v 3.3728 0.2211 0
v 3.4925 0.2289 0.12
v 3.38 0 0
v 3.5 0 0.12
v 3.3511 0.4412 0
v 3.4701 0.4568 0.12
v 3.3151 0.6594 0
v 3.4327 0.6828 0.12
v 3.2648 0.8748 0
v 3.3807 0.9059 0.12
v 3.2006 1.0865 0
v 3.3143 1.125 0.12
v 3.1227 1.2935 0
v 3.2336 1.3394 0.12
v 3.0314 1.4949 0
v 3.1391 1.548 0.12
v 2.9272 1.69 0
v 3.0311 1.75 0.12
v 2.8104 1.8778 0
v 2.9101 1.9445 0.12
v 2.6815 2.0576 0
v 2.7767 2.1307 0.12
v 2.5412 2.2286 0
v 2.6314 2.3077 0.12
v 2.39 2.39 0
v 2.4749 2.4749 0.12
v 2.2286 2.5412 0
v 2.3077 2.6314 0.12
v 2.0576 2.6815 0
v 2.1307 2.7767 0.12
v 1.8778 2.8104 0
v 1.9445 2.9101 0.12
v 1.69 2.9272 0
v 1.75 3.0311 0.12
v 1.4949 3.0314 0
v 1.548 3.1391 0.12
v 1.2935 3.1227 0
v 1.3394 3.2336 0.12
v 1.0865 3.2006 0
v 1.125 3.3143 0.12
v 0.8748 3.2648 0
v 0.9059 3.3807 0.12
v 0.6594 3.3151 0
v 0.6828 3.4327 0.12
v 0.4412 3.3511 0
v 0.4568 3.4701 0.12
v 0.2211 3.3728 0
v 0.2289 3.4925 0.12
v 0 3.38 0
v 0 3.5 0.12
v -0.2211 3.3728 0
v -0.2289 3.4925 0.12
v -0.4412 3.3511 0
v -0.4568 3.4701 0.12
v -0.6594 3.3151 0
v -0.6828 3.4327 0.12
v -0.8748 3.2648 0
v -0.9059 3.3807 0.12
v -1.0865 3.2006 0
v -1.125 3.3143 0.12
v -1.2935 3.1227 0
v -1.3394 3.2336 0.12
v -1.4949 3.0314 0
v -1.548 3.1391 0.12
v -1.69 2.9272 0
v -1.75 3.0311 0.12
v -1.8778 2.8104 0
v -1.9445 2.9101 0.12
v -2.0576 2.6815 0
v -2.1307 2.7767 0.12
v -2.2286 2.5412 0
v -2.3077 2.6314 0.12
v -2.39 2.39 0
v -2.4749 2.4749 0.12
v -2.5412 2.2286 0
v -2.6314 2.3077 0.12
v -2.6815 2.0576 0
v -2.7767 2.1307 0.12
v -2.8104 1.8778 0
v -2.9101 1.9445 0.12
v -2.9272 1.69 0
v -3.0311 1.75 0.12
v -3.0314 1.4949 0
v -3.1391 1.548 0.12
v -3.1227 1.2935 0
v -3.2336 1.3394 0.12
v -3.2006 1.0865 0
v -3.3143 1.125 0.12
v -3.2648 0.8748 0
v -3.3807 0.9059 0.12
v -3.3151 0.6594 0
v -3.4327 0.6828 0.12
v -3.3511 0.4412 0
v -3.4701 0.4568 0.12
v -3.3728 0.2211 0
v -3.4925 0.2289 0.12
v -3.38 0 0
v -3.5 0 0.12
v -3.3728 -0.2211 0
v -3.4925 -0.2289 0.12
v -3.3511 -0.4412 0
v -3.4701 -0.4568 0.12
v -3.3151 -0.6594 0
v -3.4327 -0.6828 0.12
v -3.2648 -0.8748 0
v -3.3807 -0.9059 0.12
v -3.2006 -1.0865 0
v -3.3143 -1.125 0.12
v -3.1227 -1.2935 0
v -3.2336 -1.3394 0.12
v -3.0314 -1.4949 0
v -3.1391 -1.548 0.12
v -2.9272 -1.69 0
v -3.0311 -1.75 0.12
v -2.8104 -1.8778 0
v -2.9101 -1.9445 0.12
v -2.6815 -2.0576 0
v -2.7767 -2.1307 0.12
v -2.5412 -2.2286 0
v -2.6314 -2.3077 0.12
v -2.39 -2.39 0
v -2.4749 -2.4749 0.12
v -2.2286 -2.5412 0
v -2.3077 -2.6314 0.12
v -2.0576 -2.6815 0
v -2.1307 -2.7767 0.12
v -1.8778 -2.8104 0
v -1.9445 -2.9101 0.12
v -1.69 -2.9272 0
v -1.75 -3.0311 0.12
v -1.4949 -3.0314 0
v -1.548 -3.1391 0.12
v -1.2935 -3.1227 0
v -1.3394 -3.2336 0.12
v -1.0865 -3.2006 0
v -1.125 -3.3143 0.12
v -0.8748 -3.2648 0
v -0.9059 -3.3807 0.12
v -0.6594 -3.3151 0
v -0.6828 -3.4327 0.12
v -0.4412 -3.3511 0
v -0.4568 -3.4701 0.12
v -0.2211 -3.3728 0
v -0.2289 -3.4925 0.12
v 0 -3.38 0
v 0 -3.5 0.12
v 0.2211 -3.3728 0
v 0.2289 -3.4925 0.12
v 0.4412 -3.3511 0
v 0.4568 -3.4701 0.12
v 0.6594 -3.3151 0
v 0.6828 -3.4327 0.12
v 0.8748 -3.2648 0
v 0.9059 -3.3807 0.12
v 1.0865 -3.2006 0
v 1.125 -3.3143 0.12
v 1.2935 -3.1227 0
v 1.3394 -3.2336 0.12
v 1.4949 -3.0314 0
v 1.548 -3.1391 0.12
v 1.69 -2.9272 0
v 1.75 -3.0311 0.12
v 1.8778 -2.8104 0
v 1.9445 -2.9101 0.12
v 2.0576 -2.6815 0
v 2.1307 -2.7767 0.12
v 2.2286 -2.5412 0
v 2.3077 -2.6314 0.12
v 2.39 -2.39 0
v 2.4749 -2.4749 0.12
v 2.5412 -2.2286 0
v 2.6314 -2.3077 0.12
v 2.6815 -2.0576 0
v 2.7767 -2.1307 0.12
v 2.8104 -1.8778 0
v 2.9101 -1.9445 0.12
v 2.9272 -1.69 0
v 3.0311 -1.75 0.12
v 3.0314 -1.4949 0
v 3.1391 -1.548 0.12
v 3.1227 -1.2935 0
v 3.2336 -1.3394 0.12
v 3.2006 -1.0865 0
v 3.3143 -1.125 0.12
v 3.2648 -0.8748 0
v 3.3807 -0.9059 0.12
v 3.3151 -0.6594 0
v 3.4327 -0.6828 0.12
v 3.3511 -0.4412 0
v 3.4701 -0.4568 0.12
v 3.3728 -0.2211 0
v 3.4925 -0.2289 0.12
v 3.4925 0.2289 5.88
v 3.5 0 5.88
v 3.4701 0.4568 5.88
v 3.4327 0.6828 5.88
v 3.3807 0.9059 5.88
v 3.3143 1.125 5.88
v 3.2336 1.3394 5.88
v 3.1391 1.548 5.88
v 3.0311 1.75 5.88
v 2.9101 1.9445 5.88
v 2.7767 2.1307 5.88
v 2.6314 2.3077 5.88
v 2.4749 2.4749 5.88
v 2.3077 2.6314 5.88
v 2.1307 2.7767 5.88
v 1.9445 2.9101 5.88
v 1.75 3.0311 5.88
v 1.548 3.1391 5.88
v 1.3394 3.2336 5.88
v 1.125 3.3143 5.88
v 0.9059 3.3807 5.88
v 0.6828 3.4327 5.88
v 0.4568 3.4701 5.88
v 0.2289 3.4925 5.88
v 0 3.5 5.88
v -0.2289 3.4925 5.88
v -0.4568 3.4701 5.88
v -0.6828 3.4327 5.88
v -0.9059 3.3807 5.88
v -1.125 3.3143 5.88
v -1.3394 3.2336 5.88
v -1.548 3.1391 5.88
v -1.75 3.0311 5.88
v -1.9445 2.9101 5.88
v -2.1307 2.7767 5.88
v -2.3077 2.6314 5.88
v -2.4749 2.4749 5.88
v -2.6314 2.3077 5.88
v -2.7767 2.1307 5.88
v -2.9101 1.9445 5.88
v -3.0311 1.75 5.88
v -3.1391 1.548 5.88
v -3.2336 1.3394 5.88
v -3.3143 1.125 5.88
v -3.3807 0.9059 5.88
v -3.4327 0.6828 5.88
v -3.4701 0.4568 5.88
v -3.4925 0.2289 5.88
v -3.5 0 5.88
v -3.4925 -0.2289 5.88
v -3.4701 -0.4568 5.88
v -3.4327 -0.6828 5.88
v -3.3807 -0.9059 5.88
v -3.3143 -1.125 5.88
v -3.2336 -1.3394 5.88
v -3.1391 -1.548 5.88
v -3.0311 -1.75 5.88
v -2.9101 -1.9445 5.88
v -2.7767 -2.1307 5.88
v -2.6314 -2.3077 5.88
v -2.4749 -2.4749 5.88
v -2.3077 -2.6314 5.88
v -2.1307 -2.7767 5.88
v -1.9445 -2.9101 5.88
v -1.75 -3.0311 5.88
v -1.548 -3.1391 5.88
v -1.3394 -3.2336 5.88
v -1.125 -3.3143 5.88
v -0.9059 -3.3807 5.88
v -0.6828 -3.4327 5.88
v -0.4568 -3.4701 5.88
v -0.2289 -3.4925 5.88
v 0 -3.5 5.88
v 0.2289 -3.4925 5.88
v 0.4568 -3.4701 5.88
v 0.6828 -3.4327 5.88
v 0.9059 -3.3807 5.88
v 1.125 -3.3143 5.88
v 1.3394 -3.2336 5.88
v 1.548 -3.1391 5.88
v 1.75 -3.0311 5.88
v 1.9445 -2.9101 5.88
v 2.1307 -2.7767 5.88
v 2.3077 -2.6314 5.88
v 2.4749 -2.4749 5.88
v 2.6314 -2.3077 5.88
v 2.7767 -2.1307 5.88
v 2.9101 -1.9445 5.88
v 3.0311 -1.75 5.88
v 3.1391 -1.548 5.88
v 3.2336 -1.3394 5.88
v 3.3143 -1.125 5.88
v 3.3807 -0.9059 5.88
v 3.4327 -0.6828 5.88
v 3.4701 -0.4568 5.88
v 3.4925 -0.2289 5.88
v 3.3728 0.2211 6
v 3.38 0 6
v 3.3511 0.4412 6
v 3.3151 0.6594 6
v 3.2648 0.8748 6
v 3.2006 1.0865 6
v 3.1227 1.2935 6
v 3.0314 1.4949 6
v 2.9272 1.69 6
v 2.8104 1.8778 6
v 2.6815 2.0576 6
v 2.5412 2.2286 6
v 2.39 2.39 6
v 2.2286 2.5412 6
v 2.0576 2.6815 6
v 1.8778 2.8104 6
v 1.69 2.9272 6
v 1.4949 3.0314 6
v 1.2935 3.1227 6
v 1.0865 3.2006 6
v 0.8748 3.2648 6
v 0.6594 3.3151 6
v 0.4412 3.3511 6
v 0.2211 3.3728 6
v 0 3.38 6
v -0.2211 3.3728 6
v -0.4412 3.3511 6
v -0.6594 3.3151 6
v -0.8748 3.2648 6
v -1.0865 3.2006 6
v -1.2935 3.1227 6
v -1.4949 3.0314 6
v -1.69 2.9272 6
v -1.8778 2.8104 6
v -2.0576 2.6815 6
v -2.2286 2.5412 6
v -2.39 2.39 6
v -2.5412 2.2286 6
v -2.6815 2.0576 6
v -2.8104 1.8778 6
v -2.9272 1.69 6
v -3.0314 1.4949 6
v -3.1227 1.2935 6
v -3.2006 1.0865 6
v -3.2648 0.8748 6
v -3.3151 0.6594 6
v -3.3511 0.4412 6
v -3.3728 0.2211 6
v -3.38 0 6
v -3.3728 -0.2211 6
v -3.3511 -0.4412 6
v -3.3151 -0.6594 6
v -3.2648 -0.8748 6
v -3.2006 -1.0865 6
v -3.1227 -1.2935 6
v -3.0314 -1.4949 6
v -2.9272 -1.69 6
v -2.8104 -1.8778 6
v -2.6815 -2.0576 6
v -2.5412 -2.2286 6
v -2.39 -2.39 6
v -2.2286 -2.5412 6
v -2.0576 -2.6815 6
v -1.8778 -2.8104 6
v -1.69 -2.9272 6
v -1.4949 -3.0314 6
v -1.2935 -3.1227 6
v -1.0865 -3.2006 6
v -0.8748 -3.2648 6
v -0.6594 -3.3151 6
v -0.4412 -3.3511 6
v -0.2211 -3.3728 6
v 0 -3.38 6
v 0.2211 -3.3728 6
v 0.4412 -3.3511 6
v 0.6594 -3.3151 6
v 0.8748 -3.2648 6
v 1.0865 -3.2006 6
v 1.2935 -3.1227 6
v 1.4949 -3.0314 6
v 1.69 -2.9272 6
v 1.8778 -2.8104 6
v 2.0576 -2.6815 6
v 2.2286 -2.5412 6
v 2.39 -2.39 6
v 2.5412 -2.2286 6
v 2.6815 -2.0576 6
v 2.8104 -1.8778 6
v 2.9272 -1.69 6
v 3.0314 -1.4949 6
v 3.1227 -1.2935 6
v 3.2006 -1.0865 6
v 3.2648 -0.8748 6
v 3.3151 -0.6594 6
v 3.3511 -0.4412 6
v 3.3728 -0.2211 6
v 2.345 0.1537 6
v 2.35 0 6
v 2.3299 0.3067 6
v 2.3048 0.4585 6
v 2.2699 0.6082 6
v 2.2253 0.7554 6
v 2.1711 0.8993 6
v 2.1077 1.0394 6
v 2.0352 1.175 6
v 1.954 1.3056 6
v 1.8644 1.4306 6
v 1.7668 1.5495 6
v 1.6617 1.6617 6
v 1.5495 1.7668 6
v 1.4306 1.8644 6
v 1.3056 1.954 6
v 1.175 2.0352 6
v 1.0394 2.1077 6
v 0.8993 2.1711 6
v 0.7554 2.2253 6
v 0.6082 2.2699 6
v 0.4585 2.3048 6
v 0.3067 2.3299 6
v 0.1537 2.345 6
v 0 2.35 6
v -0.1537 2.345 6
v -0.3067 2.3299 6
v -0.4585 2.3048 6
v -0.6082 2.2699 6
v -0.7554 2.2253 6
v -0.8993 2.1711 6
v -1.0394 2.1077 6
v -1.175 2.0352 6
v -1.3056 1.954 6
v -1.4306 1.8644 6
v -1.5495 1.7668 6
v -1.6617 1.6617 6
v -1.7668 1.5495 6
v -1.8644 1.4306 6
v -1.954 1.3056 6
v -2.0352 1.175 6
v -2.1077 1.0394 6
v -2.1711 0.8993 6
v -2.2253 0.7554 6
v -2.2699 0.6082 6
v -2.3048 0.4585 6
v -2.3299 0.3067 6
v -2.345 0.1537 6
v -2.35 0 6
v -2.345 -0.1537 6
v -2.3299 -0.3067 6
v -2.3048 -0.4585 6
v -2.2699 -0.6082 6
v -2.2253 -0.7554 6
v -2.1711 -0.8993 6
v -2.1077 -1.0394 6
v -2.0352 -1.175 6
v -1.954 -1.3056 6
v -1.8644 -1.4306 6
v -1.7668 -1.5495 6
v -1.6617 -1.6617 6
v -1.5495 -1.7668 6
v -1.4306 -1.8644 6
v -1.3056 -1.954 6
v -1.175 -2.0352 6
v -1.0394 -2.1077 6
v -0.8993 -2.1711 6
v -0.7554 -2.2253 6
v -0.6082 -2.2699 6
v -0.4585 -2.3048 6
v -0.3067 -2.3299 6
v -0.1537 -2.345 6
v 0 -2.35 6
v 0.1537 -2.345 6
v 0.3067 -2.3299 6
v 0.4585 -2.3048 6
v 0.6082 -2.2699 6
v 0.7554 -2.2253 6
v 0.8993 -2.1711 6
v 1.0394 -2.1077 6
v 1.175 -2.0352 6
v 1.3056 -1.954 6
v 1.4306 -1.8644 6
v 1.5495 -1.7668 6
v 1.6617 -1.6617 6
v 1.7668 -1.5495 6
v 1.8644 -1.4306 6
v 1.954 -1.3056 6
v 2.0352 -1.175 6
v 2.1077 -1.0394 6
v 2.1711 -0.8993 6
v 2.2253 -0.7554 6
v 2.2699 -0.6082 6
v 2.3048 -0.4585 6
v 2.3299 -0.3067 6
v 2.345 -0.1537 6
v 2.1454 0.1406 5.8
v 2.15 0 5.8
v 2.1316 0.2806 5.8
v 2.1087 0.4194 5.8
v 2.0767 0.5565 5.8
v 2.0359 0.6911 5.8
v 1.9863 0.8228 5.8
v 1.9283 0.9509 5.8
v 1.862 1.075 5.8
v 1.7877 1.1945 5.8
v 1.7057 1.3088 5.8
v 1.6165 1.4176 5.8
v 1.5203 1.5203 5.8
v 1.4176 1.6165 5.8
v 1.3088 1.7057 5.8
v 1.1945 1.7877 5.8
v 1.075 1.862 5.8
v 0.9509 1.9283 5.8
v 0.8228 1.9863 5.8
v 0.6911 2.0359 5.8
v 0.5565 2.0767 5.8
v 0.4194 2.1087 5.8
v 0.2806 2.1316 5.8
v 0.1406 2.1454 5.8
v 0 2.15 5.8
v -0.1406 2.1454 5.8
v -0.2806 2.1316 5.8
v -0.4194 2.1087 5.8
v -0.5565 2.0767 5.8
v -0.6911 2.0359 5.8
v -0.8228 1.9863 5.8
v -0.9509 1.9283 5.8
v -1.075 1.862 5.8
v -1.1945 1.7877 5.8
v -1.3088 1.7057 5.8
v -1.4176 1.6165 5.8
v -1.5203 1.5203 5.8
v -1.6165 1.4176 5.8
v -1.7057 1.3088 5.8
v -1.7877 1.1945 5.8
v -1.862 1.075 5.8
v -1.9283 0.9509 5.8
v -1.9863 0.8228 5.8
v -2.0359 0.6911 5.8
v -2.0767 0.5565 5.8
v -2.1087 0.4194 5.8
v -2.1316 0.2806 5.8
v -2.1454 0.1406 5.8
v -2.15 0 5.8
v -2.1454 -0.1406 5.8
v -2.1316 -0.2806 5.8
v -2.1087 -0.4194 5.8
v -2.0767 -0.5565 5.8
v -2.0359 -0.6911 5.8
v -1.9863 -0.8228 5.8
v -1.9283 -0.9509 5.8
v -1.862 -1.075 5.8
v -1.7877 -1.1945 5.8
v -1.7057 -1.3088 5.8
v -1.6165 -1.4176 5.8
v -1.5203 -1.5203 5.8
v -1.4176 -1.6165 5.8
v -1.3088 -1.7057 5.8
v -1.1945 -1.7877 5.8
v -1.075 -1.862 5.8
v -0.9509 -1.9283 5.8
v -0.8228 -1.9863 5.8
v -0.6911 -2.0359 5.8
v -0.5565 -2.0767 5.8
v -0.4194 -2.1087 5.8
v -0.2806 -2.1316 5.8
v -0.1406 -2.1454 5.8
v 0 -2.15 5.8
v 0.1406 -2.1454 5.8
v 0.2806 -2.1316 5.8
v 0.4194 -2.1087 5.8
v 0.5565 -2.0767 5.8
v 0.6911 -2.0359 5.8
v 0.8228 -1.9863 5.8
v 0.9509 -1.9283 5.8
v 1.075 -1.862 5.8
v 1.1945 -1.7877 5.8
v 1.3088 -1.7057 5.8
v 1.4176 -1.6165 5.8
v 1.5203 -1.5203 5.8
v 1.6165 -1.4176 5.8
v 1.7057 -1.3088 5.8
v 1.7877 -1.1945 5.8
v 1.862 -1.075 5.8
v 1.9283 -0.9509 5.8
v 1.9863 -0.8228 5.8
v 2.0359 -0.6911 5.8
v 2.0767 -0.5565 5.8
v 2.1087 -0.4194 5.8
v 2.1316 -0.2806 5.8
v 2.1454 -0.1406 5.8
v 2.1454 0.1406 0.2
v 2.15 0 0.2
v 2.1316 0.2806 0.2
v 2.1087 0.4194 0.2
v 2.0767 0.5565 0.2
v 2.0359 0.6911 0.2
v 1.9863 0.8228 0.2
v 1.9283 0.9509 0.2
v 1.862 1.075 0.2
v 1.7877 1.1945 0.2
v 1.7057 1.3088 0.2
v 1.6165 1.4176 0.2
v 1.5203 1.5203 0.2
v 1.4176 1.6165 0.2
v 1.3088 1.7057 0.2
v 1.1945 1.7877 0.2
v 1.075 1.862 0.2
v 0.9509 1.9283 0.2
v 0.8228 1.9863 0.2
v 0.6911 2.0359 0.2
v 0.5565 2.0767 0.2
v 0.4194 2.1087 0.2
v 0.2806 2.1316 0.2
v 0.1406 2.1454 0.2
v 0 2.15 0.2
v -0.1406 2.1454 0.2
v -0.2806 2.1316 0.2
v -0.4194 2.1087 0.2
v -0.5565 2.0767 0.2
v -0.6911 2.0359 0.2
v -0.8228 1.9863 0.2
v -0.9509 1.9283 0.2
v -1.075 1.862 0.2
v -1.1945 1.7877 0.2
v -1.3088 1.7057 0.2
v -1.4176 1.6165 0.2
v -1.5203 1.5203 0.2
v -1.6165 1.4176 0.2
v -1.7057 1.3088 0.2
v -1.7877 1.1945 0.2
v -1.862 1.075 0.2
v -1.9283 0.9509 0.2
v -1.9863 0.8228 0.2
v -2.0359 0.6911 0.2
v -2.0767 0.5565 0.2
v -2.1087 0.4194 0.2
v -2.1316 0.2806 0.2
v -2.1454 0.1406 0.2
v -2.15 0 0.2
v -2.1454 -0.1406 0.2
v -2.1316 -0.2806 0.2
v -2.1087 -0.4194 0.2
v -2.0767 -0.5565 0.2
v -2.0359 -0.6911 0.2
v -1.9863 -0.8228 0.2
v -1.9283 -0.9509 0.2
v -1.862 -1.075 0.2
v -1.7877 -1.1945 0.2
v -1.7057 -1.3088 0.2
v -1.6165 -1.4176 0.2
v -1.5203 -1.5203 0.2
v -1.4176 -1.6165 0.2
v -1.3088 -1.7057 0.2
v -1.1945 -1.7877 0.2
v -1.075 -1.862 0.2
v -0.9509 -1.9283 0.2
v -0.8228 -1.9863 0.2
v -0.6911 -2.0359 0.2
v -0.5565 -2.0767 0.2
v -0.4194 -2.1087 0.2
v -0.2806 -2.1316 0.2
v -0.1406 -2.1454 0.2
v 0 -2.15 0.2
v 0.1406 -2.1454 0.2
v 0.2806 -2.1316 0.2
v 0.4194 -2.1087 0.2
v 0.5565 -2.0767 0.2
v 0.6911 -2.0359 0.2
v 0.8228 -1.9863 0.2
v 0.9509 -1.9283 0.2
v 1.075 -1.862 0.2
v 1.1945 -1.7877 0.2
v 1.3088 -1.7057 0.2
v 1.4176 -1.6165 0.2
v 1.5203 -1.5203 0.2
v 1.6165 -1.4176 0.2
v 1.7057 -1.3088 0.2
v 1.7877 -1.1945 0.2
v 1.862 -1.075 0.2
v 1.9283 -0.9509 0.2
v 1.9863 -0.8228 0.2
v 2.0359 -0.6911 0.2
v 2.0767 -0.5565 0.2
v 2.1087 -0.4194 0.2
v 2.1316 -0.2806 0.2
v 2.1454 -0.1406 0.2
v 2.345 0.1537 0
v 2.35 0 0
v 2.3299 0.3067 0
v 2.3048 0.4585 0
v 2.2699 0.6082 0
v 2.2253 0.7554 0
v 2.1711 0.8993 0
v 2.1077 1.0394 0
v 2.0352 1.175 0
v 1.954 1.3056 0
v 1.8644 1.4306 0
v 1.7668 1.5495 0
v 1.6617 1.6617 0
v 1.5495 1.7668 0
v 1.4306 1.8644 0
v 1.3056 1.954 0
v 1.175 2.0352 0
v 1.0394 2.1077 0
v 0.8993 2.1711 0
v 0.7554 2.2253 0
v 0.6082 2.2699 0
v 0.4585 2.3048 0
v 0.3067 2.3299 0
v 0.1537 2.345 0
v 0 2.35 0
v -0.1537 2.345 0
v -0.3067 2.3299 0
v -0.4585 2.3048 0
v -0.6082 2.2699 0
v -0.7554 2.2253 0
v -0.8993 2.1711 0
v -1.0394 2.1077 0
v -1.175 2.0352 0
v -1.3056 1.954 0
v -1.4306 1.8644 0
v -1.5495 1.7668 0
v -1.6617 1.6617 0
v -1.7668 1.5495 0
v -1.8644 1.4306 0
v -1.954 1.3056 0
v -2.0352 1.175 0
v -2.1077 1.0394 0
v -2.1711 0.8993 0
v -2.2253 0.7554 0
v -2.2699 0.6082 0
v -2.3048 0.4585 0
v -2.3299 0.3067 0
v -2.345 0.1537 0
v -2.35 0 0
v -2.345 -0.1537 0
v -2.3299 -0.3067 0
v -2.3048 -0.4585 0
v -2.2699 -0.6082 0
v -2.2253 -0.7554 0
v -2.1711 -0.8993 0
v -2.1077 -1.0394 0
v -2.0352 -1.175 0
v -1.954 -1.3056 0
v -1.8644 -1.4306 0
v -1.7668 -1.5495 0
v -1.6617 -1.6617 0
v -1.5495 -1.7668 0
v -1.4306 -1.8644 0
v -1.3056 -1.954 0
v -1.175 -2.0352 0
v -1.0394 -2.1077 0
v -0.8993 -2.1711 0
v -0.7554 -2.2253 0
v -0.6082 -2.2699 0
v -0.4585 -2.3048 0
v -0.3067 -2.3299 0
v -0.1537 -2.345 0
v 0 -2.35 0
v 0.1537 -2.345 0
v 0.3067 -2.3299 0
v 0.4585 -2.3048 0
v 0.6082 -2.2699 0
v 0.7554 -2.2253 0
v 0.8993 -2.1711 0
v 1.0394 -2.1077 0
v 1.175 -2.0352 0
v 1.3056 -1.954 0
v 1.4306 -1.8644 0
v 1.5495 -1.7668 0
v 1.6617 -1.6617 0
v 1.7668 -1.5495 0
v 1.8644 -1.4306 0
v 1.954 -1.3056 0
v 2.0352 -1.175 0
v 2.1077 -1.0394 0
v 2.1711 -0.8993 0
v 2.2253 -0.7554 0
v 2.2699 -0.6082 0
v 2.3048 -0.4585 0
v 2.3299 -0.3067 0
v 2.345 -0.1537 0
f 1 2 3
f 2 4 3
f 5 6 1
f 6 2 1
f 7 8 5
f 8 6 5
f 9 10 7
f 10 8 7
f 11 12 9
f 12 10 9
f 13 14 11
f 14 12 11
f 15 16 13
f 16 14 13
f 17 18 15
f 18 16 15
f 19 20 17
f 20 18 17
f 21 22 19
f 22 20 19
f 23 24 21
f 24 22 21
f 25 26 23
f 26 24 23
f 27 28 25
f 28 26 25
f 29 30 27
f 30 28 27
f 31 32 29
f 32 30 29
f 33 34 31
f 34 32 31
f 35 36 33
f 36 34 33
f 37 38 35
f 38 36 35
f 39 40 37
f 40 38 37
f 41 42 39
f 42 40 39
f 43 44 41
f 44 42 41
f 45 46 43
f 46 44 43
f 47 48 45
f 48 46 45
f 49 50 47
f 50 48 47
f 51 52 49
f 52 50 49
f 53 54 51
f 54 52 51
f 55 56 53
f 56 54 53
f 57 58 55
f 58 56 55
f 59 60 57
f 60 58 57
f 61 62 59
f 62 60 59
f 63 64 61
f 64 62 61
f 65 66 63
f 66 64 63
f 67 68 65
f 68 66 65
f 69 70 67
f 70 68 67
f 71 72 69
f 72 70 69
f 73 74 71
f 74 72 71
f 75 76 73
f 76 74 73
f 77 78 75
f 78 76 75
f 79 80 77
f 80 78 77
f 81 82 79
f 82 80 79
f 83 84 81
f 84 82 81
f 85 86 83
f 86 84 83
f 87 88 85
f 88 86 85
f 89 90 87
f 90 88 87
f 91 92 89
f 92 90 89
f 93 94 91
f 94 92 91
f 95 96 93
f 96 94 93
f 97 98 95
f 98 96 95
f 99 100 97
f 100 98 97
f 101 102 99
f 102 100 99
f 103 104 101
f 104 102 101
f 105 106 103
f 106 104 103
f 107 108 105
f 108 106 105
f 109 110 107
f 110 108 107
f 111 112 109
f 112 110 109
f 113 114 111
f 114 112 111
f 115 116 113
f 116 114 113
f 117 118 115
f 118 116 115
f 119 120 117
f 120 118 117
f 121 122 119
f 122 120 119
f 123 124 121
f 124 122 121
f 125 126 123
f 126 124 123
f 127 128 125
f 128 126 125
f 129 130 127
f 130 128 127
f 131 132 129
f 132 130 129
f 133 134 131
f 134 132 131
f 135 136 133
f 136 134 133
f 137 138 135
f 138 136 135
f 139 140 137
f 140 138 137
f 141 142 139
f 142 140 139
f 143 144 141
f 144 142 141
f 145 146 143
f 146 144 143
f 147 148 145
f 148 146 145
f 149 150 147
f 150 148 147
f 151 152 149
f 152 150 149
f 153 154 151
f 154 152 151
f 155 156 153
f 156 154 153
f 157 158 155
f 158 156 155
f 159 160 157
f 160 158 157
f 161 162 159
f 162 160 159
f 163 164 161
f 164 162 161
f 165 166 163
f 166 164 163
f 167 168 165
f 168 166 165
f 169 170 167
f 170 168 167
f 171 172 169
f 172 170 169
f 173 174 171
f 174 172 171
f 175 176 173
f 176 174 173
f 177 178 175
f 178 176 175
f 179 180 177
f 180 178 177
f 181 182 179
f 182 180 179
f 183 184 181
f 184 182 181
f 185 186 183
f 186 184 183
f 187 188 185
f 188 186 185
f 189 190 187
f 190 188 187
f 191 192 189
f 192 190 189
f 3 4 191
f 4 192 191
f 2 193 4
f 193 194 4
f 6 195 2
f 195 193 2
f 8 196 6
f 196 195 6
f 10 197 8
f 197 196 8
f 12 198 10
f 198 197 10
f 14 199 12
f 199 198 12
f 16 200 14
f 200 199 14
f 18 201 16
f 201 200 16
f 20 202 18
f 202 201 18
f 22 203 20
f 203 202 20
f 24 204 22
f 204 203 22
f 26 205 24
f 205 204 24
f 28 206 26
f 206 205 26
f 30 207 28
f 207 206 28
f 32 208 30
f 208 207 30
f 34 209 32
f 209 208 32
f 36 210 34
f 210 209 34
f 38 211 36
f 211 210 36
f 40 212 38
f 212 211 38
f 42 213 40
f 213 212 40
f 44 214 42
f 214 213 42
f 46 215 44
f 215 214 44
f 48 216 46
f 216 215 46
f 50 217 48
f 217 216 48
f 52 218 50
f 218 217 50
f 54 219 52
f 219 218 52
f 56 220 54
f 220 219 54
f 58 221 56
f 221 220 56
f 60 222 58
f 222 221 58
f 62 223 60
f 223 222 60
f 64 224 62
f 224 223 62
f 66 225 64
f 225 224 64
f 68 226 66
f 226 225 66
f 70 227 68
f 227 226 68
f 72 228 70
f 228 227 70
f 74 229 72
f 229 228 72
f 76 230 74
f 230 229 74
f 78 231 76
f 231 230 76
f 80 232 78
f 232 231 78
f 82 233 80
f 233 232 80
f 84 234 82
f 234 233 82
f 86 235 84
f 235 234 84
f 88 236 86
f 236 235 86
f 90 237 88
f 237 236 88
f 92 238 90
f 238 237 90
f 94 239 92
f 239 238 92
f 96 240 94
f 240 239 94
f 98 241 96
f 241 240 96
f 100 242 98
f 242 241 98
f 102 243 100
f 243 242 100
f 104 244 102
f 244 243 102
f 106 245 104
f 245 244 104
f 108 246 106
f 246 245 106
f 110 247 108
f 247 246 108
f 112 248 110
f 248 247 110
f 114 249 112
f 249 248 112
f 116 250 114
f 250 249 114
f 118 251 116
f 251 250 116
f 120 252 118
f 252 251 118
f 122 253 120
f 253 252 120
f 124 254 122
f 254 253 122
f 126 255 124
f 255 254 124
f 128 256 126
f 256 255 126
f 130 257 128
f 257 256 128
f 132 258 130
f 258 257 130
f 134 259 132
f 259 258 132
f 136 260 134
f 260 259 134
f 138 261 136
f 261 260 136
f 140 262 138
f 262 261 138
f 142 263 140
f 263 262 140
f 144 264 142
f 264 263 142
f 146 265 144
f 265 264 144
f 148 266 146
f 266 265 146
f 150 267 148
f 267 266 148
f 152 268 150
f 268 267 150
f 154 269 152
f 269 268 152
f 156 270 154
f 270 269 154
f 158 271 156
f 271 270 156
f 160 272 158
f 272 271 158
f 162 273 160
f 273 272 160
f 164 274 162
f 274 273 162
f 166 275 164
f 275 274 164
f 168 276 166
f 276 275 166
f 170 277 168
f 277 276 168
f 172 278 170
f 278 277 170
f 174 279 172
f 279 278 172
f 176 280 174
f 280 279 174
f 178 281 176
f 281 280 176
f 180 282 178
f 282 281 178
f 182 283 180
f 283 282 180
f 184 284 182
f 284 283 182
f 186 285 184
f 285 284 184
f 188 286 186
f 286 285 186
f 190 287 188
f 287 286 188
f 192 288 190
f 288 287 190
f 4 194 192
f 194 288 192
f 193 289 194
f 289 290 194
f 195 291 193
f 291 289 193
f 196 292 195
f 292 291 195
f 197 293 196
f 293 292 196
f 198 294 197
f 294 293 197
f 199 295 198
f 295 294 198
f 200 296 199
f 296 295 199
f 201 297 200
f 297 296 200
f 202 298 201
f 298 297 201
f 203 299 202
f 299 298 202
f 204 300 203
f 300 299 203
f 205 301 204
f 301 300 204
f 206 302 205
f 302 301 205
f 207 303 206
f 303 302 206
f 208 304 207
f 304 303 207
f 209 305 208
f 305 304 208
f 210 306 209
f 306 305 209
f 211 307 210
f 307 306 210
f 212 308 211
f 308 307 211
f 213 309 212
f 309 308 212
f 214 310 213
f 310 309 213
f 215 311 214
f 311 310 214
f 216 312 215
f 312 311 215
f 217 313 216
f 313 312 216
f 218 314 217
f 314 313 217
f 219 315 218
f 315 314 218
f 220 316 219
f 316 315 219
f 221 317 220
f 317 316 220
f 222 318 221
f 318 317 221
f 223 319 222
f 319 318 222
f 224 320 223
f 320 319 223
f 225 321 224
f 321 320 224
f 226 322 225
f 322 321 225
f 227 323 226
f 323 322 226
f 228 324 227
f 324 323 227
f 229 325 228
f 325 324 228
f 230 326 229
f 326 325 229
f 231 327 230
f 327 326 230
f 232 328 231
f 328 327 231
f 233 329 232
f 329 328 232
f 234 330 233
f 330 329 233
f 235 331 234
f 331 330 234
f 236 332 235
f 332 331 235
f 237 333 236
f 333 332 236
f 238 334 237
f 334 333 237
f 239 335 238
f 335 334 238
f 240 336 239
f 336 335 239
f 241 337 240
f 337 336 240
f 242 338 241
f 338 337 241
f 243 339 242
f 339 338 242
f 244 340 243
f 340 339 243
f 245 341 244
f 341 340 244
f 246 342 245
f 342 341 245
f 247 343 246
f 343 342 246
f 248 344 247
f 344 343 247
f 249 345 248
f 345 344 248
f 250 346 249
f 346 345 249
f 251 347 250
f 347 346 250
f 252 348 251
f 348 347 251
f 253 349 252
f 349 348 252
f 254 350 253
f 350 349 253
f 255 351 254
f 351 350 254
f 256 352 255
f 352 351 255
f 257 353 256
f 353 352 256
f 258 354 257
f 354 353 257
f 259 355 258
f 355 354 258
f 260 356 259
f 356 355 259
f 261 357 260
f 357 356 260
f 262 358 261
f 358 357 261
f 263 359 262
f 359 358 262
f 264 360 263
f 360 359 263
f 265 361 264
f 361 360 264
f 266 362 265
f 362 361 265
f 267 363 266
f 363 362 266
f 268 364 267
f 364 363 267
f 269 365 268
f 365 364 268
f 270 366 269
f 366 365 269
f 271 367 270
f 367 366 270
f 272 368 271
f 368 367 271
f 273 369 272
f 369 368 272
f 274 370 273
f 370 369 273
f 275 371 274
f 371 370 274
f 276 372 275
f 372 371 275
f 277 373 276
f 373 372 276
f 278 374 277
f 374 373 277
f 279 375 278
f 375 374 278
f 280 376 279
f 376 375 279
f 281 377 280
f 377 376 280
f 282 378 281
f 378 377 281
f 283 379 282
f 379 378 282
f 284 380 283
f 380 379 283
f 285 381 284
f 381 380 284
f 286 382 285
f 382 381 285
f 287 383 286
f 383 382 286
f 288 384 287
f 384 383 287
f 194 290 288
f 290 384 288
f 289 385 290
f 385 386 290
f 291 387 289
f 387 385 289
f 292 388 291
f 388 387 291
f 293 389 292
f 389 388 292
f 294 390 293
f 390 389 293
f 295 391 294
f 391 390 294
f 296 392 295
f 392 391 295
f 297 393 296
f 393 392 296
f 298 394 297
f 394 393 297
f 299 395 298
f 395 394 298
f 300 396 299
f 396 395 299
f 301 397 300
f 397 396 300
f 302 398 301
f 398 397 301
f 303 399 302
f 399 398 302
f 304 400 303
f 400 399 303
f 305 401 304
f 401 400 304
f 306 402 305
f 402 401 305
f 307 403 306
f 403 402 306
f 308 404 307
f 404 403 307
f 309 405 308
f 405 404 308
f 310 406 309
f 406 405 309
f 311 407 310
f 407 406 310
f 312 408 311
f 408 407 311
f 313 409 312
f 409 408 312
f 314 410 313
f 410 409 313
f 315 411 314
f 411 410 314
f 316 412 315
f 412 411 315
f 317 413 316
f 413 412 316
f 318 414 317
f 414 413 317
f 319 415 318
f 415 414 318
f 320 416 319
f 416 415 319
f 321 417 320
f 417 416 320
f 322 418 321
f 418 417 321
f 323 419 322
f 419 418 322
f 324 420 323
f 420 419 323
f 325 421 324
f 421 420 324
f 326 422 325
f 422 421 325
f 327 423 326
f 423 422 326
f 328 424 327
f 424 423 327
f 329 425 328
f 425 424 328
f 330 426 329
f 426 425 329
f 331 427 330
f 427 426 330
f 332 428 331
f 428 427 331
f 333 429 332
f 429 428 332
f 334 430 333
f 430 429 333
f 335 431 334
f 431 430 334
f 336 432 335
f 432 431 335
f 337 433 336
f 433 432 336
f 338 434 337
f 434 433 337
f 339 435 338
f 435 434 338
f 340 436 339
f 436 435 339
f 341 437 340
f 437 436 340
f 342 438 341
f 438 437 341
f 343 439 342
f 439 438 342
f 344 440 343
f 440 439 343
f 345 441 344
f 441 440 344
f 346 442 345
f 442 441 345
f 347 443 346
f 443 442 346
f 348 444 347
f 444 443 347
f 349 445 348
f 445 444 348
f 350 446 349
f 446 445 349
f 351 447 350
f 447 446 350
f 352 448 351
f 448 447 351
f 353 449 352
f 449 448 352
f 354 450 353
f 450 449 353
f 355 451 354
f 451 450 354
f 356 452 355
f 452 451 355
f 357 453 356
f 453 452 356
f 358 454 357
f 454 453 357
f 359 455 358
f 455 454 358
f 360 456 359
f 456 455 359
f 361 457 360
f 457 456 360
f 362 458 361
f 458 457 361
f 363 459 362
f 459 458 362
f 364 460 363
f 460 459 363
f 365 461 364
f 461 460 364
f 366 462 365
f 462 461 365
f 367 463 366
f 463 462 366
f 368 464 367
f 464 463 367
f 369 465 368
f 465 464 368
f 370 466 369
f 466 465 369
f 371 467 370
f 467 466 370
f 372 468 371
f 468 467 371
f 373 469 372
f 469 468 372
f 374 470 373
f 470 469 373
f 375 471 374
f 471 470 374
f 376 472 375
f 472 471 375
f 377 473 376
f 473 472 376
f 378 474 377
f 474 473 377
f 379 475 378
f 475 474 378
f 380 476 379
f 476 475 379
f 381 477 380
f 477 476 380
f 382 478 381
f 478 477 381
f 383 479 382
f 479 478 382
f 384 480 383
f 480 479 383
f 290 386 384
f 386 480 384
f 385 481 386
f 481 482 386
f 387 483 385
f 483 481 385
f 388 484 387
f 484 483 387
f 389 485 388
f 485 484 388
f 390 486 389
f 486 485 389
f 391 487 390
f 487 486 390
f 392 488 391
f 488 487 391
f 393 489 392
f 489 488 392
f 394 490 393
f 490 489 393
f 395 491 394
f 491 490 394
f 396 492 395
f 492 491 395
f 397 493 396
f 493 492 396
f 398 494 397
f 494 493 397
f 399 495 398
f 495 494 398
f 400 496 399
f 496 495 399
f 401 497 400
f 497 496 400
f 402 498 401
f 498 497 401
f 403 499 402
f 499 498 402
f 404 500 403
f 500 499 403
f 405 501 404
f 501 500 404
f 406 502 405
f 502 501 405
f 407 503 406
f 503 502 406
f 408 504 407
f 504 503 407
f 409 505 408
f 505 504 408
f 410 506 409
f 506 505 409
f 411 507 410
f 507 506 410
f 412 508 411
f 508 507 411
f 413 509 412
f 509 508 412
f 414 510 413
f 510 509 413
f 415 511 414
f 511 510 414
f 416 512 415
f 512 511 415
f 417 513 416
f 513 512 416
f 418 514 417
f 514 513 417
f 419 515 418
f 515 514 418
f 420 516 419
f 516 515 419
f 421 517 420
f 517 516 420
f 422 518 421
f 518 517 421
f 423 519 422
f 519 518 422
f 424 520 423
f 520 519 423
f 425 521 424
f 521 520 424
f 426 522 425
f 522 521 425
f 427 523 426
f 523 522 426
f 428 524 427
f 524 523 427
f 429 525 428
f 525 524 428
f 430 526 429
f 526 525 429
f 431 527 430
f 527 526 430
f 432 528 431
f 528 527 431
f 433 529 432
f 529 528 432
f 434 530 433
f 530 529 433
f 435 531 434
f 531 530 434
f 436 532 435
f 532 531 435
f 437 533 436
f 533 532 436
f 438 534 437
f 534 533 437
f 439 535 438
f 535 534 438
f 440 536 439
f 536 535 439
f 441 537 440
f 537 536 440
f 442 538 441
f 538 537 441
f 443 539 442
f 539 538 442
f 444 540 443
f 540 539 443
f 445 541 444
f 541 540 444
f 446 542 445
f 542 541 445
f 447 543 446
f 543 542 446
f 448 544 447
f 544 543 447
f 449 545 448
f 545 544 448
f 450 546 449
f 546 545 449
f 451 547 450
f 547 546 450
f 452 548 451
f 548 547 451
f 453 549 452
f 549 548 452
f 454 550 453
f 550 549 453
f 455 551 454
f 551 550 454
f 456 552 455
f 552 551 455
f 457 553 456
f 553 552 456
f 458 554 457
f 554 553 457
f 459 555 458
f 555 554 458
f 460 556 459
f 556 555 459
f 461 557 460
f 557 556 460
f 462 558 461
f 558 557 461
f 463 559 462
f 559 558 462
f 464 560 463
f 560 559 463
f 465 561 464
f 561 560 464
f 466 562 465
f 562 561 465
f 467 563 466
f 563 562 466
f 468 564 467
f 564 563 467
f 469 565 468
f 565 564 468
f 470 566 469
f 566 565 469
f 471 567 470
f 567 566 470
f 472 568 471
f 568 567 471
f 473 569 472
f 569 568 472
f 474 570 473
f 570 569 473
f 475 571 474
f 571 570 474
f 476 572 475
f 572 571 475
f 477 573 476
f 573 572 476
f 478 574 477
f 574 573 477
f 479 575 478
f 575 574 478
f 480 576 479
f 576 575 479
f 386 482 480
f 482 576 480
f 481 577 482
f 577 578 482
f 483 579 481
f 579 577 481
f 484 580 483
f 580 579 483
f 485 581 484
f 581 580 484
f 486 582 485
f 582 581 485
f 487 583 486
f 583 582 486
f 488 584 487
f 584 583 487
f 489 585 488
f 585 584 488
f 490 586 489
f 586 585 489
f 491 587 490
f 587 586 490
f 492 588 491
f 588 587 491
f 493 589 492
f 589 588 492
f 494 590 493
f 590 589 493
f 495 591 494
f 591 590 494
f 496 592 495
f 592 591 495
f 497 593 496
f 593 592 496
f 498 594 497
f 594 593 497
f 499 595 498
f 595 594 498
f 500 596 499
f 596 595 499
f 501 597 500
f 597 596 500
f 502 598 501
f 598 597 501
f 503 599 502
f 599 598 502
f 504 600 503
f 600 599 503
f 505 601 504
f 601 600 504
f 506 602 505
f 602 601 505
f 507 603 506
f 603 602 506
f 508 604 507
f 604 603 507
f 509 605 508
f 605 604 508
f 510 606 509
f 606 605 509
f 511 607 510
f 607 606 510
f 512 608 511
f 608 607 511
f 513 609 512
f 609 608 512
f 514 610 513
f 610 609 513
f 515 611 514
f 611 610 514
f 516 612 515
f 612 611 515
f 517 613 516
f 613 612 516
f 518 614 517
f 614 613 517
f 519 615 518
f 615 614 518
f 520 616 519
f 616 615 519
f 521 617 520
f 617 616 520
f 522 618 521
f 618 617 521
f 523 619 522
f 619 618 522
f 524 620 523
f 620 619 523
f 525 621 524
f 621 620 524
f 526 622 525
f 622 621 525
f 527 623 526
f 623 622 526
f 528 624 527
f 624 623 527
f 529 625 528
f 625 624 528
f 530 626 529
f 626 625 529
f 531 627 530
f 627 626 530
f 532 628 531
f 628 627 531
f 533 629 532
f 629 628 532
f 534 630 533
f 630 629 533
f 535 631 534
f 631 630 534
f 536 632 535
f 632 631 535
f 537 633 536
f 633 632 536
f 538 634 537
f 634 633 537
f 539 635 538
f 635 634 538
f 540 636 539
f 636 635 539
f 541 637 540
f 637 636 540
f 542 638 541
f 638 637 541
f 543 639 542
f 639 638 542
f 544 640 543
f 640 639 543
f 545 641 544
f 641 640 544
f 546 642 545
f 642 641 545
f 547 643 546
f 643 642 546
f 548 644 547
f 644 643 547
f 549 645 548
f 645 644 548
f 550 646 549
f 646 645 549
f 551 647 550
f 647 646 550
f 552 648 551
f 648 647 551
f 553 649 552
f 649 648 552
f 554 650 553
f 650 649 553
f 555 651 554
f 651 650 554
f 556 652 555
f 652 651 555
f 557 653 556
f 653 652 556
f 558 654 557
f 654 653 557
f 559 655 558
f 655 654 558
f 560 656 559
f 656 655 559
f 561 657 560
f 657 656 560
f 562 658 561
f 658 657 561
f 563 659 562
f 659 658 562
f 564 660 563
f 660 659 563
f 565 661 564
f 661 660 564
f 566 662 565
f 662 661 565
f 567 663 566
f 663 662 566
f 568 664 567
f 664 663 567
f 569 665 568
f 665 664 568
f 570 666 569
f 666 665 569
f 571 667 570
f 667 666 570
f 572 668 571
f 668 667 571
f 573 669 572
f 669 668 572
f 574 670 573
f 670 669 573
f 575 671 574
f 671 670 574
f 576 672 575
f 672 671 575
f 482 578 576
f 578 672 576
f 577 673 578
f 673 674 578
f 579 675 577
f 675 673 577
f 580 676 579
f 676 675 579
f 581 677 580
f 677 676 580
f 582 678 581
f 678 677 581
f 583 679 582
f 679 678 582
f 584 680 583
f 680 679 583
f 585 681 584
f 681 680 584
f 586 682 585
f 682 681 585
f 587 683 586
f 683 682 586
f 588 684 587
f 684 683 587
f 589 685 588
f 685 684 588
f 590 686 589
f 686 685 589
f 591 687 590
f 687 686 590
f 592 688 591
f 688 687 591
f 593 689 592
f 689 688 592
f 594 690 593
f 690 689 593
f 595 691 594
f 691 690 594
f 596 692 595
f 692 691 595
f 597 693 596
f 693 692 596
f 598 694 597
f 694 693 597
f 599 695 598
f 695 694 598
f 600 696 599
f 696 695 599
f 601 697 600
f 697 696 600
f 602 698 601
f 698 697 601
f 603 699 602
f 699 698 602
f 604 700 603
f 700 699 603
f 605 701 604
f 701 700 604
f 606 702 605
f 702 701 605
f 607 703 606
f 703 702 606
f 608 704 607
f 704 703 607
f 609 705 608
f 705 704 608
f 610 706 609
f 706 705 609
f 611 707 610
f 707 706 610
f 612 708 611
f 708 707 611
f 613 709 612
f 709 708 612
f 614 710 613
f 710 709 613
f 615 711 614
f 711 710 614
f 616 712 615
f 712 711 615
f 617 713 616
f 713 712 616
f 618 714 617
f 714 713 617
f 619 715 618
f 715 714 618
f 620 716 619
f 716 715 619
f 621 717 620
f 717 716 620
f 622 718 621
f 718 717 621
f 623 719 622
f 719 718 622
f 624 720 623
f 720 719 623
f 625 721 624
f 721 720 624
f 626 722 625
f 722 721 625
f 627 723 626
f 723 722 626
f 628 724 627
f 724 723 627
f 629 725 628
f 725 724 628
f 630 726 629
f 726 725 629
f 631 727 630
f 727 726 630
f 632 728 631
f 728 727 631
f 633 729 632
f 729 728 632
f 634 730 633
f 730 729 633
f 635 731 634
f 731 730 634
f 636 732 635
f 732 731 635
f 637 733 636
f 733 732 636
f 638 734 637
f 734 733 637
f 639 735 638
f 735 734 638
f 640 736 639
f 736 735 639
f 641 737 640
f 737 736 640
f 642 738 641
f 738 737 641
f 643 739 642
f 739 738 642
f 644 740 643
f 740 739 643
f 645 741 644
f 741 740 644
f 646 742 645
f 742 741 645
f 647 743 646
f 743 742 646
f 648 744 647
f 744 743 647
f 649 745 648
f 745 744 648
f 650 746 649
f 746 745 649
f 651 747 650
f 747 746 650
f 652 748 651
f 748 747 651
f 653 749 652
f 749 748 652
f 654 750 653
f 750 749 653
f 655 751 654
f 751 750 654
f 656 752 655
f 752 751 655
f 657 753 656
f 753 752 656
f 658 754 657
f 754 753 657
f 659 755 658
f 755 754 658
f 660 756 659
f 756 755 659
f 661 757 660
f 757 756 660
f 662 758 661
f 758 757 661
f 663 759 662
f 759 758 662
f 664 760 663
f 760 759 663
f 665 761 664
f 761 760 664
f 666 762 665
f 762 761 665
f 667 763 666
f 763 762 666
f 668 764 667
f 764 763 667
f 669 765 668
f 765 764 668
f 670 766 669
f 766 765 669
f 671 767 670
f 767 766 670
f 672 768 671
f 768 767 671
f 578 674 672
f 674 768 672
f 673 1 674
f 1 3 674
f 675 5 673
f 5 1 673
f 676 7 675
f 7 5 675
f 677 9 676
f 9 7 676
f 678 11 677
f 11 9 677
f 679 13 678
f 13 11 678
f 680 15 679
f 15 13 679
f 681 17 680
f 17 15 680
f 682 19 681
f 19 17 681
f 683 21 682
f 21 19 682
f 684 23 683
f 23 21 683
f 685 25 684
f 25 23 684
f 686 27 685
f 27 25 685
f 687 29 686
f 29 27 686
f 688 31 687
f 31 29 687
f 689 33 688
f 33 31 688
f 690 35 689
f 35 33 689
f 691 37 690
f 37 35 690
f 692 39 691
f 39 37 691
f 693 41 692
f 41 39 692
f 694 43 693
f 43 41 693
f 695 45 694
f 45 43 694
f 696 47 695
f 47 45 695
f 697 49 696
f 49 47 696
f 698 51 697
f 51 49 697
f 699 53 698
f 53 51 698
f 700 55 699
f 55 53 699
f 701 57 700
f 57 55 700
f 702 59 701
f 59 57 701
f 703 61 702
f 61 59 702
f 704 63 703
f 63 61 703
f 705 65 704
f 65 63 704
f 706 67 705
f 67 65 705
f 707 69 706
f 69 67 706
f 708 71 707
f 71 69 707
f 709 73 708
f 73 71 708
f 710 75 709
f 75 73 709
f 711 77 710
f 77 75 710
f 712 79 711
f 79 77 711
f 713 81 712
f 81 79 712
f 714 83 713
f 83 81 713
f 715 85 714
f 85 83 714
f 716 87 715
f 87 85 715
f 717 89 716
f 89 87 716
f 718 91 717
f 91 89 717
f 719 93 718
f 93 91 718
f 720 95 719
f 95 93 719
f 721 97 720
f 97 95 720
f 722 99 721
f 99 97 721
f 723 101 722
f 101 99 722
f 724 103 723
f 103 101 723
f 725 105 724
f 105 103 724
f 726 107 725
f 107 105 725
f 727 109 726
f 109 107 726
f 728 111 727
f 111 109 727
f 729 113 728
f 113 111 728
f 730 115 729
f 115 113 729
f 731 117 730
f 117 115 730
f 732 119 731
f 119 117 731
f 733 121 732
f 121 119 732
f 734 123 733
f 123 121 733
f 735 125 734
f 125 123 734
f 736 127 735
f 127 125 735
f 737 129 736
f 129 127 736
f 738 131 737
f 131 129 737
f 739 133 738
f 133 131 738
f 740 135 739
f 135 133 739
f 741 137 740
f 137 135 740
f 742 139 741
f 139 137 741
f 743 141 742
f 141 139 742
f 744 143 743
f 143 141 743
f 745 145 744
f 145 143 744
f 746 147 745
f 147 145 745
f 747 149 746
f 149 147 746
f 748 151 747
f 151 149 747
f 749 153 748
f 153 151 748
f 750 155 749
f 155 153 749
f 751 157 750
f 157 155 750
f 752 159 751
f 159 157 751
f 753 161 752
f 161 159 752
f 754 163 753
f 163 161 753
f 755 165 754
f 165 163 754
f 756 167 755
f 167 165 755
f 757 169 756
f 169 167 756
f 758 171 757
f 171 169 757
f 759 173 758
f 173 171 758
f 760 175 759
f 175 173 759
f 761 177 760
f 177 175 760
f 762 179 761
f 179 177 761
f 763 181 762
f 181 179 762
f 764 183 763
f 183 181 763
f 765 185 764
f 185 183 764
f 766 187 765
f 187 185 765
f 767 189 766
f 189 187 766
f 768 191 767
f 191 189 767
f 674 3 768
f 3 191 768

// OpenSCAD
// OOMP generic catalogue model; units: mm.
// Stud length is additional to body depth. Tapping depths are model assumptions.
variant = "full"; // [full, display]
family = "spacer";
connection_type = "plain";
depth_mm = 6;
stud_length_mm = 0;
tapped_depth_mm = 0;
bore_mm = 4.3;
outer_diameter_mm = 7;
across_flats_mm = 6;
thread_nominal_diameter_mm = 3;
thread_pitch_mm = 0.5;
edge_chamfer_mm = 0.12;
mouth_chamfer_mm = 0.2;
angular_segments = 96;
samples_per_pitch = 16;

// Boundary travels up the outside, then down any tapped/plain bore.
// Equal-height rings at shoulders form the annular shoulder faces.
n = angular_segments;
threaded = family == "standoff";
has_stud = connection_type == "stud_to_tapped" || connection_type == "stud_to_stud";
two_studs = connection_type == "stud_to_stud";
through = !threaded || connection_type == "tapped_to_tapped";
pitch = thread_pitch_mm;
diameter = threaded ? thread_nominal_diameter_mm : bore_mm;
minor = diameter - 5*sqrt(3)*pitch/8;
transition = mouth_chamfer_mm + (threaded ? 5*sqrt(3)*pitch/16 : 0);
tip_chamfer = mouth_chamfer_mm + 17*sqrt(3)*pitch/48;
function sorted(v) = len(v)<=1 ? v : let(p=v[0])
    concat(sorted([for(x=v) if(x<p-1e-8) x]), [p], sorted([for(x=v) if(x>p+1e-8) x]));
function reverse(v) = [for(i=[len(v)-1:-1:0]) v[i]];
function theta(i) = i*360/n;
function fract(x) = x-floor(x);
function phase_distance(i,z) = abs(fract(z/pitch-theta(i)/360+0.5)-0.5);
function thread_r(i,z) = minor/2 + min(5*sqrt(3)*pitch/16,
    max(0,(phase_distance(i,z)-0.125)*pitch*sqrt(3)));
function stud_r(i,z,tip) = min(diameter/2 - (variant=="full" ?
    min(17*sqrt(3)*pitch/48,max(0,(phase_distance(i,z)-0.0625)*pitch*sqrt(3))) : 0),
    diameter/2-tip_chamfer+abs(z-tip));
function body_r(i,z) = (threaded ? across_flats_mm/2/cos(theta(i)%60-30) : outer_diameter_mm/2)
    - max(0,edge_chamfer_mm-min(z,depth_mm-z));
function bore_r(i,z) = max(threaded ? (variant=="full" ? thread_r(i,z) : minor/2) : diameter/2,
    diameter/2+mouth_chamfer_mm-(through ? min(z,depth_mm-z) : depth_mm-z));
function stud_z(a,b,tip) = let(count=variant=="full" ? ceil(stud_length_mm/pitch*samples_per_pitch) : 1)
    sorted(concat([for(i=[0:count]) a+(b-a)*i/count], [tip==a ? tip+tip_chamfer : tip-tip_chamfer]));
body_z = sorted([0,edge_chamfer_mm,depth_mm-edge_chamfer_mm,depth_mm]);
low = through ? 0 : depth_mm-tapped_depth_mm;
count = threaded && variant=="full" ? ceil((depth_mm-low)/pitch*samples_per_pitch) : 1;
bore_z = two_studs ? [] : reverse(sorted(concat(
    [for(i=[0:count]) low+(depth_mm-low)*i/count],
    [depth_mm-mouth_chamfer_mm,depth_mm-transition],
    through ? [mouth_chamfer_mm,transition] : [])));
// Ring descriptors: [height, kind, tip]. Kind: 0 body, 1 stud, 2 bore.
rings = concat(
    has_stud ? [for(z=stud_z(-stud_length_mm,0,-stud_length_mm)) [z,1,-stud_length_mm]] : [],
    [for(z=body_z) [z,0,0]],
    two_studs ? [for(z=stud_z(depth_mm,depth_mm+stud_length_mm,depth_mm+stud_length_mm)) [z,1,depth_mm+stud_length_mm]] : [],
    [for(z=bore_z) [z,2,0]]);
function radius(i,ring) = ring[1]==0 ? body_r(i,ring[0]) :
    ring[1]==1 ? stud_r(i,ring[0],ring[2]) : bore_r(i,ring[0]);
points = concat([for(ring=rings) for(i=[0:n-1])
    [radius(i,ring)*cos(theta(i)),radius(i,ring)*sin(theta(i)),ring[0]]],
    through ? [] : [[0,0,rings[0][0]],[0,0,rings[len(rings)-1][0]]]);
center = len(rings)*n;
last = (len(rings)-1)*n;
// OpenSCAD winding is opposite to STL winding.
faces = concat(
    [for(j=[0:len(rings)-(through ? 1 : 2)]) for(i=[0:n-1]) each
        let(a=j*n+i,b=j*n+(i+1)%n,c=((j+1)%len(rings))*n+(i+1)%n,d=((j+1)%len(rings))*n+i)
        [[a,c,b],[a,d,c]]],
    through ? [] : [for(i=[0:n-1]) each let(k=(i+1)%n)
        [[center,i,k],[center+1,last+k,last+i]]]);
assert(family=="spacer" || family=="standoff");
assert(!threaded || connection_type=="tapped_to_tapped" || has_stud);
assert(depth_mm>0 && diameter>0 && pitch>0);
assert(variant=="full" || variant=="display");
assert(n>=24 && n%12==0 && samples_per_pitch>=8);
assert(mouth_chamfer_mm>0 && mouth_chamfer_mm<depth_mm/2);
assert(edge_chamfer_mm>=0 && edge_chamfer_mm<depth_mm/2);
assert(diameter+4*max(mouth_chamfer_mm,edge_chamfer_mm) < (threaded ? across_flats_mm : outer_diameter_mm));
assert(!has_stud || stud_length_mm>2*mouth_chamfer_mm);
assert(!through || !threaded || 2*transition<depth_mm);
assert(connection_type!="stud_to_tapped" || (tapped_depth_mm>transition && tapped_depth_mm<depth_mm));
color([0.86,0.85,0.81]) polyhedron(points=points,faces=faces,convexity=20);
